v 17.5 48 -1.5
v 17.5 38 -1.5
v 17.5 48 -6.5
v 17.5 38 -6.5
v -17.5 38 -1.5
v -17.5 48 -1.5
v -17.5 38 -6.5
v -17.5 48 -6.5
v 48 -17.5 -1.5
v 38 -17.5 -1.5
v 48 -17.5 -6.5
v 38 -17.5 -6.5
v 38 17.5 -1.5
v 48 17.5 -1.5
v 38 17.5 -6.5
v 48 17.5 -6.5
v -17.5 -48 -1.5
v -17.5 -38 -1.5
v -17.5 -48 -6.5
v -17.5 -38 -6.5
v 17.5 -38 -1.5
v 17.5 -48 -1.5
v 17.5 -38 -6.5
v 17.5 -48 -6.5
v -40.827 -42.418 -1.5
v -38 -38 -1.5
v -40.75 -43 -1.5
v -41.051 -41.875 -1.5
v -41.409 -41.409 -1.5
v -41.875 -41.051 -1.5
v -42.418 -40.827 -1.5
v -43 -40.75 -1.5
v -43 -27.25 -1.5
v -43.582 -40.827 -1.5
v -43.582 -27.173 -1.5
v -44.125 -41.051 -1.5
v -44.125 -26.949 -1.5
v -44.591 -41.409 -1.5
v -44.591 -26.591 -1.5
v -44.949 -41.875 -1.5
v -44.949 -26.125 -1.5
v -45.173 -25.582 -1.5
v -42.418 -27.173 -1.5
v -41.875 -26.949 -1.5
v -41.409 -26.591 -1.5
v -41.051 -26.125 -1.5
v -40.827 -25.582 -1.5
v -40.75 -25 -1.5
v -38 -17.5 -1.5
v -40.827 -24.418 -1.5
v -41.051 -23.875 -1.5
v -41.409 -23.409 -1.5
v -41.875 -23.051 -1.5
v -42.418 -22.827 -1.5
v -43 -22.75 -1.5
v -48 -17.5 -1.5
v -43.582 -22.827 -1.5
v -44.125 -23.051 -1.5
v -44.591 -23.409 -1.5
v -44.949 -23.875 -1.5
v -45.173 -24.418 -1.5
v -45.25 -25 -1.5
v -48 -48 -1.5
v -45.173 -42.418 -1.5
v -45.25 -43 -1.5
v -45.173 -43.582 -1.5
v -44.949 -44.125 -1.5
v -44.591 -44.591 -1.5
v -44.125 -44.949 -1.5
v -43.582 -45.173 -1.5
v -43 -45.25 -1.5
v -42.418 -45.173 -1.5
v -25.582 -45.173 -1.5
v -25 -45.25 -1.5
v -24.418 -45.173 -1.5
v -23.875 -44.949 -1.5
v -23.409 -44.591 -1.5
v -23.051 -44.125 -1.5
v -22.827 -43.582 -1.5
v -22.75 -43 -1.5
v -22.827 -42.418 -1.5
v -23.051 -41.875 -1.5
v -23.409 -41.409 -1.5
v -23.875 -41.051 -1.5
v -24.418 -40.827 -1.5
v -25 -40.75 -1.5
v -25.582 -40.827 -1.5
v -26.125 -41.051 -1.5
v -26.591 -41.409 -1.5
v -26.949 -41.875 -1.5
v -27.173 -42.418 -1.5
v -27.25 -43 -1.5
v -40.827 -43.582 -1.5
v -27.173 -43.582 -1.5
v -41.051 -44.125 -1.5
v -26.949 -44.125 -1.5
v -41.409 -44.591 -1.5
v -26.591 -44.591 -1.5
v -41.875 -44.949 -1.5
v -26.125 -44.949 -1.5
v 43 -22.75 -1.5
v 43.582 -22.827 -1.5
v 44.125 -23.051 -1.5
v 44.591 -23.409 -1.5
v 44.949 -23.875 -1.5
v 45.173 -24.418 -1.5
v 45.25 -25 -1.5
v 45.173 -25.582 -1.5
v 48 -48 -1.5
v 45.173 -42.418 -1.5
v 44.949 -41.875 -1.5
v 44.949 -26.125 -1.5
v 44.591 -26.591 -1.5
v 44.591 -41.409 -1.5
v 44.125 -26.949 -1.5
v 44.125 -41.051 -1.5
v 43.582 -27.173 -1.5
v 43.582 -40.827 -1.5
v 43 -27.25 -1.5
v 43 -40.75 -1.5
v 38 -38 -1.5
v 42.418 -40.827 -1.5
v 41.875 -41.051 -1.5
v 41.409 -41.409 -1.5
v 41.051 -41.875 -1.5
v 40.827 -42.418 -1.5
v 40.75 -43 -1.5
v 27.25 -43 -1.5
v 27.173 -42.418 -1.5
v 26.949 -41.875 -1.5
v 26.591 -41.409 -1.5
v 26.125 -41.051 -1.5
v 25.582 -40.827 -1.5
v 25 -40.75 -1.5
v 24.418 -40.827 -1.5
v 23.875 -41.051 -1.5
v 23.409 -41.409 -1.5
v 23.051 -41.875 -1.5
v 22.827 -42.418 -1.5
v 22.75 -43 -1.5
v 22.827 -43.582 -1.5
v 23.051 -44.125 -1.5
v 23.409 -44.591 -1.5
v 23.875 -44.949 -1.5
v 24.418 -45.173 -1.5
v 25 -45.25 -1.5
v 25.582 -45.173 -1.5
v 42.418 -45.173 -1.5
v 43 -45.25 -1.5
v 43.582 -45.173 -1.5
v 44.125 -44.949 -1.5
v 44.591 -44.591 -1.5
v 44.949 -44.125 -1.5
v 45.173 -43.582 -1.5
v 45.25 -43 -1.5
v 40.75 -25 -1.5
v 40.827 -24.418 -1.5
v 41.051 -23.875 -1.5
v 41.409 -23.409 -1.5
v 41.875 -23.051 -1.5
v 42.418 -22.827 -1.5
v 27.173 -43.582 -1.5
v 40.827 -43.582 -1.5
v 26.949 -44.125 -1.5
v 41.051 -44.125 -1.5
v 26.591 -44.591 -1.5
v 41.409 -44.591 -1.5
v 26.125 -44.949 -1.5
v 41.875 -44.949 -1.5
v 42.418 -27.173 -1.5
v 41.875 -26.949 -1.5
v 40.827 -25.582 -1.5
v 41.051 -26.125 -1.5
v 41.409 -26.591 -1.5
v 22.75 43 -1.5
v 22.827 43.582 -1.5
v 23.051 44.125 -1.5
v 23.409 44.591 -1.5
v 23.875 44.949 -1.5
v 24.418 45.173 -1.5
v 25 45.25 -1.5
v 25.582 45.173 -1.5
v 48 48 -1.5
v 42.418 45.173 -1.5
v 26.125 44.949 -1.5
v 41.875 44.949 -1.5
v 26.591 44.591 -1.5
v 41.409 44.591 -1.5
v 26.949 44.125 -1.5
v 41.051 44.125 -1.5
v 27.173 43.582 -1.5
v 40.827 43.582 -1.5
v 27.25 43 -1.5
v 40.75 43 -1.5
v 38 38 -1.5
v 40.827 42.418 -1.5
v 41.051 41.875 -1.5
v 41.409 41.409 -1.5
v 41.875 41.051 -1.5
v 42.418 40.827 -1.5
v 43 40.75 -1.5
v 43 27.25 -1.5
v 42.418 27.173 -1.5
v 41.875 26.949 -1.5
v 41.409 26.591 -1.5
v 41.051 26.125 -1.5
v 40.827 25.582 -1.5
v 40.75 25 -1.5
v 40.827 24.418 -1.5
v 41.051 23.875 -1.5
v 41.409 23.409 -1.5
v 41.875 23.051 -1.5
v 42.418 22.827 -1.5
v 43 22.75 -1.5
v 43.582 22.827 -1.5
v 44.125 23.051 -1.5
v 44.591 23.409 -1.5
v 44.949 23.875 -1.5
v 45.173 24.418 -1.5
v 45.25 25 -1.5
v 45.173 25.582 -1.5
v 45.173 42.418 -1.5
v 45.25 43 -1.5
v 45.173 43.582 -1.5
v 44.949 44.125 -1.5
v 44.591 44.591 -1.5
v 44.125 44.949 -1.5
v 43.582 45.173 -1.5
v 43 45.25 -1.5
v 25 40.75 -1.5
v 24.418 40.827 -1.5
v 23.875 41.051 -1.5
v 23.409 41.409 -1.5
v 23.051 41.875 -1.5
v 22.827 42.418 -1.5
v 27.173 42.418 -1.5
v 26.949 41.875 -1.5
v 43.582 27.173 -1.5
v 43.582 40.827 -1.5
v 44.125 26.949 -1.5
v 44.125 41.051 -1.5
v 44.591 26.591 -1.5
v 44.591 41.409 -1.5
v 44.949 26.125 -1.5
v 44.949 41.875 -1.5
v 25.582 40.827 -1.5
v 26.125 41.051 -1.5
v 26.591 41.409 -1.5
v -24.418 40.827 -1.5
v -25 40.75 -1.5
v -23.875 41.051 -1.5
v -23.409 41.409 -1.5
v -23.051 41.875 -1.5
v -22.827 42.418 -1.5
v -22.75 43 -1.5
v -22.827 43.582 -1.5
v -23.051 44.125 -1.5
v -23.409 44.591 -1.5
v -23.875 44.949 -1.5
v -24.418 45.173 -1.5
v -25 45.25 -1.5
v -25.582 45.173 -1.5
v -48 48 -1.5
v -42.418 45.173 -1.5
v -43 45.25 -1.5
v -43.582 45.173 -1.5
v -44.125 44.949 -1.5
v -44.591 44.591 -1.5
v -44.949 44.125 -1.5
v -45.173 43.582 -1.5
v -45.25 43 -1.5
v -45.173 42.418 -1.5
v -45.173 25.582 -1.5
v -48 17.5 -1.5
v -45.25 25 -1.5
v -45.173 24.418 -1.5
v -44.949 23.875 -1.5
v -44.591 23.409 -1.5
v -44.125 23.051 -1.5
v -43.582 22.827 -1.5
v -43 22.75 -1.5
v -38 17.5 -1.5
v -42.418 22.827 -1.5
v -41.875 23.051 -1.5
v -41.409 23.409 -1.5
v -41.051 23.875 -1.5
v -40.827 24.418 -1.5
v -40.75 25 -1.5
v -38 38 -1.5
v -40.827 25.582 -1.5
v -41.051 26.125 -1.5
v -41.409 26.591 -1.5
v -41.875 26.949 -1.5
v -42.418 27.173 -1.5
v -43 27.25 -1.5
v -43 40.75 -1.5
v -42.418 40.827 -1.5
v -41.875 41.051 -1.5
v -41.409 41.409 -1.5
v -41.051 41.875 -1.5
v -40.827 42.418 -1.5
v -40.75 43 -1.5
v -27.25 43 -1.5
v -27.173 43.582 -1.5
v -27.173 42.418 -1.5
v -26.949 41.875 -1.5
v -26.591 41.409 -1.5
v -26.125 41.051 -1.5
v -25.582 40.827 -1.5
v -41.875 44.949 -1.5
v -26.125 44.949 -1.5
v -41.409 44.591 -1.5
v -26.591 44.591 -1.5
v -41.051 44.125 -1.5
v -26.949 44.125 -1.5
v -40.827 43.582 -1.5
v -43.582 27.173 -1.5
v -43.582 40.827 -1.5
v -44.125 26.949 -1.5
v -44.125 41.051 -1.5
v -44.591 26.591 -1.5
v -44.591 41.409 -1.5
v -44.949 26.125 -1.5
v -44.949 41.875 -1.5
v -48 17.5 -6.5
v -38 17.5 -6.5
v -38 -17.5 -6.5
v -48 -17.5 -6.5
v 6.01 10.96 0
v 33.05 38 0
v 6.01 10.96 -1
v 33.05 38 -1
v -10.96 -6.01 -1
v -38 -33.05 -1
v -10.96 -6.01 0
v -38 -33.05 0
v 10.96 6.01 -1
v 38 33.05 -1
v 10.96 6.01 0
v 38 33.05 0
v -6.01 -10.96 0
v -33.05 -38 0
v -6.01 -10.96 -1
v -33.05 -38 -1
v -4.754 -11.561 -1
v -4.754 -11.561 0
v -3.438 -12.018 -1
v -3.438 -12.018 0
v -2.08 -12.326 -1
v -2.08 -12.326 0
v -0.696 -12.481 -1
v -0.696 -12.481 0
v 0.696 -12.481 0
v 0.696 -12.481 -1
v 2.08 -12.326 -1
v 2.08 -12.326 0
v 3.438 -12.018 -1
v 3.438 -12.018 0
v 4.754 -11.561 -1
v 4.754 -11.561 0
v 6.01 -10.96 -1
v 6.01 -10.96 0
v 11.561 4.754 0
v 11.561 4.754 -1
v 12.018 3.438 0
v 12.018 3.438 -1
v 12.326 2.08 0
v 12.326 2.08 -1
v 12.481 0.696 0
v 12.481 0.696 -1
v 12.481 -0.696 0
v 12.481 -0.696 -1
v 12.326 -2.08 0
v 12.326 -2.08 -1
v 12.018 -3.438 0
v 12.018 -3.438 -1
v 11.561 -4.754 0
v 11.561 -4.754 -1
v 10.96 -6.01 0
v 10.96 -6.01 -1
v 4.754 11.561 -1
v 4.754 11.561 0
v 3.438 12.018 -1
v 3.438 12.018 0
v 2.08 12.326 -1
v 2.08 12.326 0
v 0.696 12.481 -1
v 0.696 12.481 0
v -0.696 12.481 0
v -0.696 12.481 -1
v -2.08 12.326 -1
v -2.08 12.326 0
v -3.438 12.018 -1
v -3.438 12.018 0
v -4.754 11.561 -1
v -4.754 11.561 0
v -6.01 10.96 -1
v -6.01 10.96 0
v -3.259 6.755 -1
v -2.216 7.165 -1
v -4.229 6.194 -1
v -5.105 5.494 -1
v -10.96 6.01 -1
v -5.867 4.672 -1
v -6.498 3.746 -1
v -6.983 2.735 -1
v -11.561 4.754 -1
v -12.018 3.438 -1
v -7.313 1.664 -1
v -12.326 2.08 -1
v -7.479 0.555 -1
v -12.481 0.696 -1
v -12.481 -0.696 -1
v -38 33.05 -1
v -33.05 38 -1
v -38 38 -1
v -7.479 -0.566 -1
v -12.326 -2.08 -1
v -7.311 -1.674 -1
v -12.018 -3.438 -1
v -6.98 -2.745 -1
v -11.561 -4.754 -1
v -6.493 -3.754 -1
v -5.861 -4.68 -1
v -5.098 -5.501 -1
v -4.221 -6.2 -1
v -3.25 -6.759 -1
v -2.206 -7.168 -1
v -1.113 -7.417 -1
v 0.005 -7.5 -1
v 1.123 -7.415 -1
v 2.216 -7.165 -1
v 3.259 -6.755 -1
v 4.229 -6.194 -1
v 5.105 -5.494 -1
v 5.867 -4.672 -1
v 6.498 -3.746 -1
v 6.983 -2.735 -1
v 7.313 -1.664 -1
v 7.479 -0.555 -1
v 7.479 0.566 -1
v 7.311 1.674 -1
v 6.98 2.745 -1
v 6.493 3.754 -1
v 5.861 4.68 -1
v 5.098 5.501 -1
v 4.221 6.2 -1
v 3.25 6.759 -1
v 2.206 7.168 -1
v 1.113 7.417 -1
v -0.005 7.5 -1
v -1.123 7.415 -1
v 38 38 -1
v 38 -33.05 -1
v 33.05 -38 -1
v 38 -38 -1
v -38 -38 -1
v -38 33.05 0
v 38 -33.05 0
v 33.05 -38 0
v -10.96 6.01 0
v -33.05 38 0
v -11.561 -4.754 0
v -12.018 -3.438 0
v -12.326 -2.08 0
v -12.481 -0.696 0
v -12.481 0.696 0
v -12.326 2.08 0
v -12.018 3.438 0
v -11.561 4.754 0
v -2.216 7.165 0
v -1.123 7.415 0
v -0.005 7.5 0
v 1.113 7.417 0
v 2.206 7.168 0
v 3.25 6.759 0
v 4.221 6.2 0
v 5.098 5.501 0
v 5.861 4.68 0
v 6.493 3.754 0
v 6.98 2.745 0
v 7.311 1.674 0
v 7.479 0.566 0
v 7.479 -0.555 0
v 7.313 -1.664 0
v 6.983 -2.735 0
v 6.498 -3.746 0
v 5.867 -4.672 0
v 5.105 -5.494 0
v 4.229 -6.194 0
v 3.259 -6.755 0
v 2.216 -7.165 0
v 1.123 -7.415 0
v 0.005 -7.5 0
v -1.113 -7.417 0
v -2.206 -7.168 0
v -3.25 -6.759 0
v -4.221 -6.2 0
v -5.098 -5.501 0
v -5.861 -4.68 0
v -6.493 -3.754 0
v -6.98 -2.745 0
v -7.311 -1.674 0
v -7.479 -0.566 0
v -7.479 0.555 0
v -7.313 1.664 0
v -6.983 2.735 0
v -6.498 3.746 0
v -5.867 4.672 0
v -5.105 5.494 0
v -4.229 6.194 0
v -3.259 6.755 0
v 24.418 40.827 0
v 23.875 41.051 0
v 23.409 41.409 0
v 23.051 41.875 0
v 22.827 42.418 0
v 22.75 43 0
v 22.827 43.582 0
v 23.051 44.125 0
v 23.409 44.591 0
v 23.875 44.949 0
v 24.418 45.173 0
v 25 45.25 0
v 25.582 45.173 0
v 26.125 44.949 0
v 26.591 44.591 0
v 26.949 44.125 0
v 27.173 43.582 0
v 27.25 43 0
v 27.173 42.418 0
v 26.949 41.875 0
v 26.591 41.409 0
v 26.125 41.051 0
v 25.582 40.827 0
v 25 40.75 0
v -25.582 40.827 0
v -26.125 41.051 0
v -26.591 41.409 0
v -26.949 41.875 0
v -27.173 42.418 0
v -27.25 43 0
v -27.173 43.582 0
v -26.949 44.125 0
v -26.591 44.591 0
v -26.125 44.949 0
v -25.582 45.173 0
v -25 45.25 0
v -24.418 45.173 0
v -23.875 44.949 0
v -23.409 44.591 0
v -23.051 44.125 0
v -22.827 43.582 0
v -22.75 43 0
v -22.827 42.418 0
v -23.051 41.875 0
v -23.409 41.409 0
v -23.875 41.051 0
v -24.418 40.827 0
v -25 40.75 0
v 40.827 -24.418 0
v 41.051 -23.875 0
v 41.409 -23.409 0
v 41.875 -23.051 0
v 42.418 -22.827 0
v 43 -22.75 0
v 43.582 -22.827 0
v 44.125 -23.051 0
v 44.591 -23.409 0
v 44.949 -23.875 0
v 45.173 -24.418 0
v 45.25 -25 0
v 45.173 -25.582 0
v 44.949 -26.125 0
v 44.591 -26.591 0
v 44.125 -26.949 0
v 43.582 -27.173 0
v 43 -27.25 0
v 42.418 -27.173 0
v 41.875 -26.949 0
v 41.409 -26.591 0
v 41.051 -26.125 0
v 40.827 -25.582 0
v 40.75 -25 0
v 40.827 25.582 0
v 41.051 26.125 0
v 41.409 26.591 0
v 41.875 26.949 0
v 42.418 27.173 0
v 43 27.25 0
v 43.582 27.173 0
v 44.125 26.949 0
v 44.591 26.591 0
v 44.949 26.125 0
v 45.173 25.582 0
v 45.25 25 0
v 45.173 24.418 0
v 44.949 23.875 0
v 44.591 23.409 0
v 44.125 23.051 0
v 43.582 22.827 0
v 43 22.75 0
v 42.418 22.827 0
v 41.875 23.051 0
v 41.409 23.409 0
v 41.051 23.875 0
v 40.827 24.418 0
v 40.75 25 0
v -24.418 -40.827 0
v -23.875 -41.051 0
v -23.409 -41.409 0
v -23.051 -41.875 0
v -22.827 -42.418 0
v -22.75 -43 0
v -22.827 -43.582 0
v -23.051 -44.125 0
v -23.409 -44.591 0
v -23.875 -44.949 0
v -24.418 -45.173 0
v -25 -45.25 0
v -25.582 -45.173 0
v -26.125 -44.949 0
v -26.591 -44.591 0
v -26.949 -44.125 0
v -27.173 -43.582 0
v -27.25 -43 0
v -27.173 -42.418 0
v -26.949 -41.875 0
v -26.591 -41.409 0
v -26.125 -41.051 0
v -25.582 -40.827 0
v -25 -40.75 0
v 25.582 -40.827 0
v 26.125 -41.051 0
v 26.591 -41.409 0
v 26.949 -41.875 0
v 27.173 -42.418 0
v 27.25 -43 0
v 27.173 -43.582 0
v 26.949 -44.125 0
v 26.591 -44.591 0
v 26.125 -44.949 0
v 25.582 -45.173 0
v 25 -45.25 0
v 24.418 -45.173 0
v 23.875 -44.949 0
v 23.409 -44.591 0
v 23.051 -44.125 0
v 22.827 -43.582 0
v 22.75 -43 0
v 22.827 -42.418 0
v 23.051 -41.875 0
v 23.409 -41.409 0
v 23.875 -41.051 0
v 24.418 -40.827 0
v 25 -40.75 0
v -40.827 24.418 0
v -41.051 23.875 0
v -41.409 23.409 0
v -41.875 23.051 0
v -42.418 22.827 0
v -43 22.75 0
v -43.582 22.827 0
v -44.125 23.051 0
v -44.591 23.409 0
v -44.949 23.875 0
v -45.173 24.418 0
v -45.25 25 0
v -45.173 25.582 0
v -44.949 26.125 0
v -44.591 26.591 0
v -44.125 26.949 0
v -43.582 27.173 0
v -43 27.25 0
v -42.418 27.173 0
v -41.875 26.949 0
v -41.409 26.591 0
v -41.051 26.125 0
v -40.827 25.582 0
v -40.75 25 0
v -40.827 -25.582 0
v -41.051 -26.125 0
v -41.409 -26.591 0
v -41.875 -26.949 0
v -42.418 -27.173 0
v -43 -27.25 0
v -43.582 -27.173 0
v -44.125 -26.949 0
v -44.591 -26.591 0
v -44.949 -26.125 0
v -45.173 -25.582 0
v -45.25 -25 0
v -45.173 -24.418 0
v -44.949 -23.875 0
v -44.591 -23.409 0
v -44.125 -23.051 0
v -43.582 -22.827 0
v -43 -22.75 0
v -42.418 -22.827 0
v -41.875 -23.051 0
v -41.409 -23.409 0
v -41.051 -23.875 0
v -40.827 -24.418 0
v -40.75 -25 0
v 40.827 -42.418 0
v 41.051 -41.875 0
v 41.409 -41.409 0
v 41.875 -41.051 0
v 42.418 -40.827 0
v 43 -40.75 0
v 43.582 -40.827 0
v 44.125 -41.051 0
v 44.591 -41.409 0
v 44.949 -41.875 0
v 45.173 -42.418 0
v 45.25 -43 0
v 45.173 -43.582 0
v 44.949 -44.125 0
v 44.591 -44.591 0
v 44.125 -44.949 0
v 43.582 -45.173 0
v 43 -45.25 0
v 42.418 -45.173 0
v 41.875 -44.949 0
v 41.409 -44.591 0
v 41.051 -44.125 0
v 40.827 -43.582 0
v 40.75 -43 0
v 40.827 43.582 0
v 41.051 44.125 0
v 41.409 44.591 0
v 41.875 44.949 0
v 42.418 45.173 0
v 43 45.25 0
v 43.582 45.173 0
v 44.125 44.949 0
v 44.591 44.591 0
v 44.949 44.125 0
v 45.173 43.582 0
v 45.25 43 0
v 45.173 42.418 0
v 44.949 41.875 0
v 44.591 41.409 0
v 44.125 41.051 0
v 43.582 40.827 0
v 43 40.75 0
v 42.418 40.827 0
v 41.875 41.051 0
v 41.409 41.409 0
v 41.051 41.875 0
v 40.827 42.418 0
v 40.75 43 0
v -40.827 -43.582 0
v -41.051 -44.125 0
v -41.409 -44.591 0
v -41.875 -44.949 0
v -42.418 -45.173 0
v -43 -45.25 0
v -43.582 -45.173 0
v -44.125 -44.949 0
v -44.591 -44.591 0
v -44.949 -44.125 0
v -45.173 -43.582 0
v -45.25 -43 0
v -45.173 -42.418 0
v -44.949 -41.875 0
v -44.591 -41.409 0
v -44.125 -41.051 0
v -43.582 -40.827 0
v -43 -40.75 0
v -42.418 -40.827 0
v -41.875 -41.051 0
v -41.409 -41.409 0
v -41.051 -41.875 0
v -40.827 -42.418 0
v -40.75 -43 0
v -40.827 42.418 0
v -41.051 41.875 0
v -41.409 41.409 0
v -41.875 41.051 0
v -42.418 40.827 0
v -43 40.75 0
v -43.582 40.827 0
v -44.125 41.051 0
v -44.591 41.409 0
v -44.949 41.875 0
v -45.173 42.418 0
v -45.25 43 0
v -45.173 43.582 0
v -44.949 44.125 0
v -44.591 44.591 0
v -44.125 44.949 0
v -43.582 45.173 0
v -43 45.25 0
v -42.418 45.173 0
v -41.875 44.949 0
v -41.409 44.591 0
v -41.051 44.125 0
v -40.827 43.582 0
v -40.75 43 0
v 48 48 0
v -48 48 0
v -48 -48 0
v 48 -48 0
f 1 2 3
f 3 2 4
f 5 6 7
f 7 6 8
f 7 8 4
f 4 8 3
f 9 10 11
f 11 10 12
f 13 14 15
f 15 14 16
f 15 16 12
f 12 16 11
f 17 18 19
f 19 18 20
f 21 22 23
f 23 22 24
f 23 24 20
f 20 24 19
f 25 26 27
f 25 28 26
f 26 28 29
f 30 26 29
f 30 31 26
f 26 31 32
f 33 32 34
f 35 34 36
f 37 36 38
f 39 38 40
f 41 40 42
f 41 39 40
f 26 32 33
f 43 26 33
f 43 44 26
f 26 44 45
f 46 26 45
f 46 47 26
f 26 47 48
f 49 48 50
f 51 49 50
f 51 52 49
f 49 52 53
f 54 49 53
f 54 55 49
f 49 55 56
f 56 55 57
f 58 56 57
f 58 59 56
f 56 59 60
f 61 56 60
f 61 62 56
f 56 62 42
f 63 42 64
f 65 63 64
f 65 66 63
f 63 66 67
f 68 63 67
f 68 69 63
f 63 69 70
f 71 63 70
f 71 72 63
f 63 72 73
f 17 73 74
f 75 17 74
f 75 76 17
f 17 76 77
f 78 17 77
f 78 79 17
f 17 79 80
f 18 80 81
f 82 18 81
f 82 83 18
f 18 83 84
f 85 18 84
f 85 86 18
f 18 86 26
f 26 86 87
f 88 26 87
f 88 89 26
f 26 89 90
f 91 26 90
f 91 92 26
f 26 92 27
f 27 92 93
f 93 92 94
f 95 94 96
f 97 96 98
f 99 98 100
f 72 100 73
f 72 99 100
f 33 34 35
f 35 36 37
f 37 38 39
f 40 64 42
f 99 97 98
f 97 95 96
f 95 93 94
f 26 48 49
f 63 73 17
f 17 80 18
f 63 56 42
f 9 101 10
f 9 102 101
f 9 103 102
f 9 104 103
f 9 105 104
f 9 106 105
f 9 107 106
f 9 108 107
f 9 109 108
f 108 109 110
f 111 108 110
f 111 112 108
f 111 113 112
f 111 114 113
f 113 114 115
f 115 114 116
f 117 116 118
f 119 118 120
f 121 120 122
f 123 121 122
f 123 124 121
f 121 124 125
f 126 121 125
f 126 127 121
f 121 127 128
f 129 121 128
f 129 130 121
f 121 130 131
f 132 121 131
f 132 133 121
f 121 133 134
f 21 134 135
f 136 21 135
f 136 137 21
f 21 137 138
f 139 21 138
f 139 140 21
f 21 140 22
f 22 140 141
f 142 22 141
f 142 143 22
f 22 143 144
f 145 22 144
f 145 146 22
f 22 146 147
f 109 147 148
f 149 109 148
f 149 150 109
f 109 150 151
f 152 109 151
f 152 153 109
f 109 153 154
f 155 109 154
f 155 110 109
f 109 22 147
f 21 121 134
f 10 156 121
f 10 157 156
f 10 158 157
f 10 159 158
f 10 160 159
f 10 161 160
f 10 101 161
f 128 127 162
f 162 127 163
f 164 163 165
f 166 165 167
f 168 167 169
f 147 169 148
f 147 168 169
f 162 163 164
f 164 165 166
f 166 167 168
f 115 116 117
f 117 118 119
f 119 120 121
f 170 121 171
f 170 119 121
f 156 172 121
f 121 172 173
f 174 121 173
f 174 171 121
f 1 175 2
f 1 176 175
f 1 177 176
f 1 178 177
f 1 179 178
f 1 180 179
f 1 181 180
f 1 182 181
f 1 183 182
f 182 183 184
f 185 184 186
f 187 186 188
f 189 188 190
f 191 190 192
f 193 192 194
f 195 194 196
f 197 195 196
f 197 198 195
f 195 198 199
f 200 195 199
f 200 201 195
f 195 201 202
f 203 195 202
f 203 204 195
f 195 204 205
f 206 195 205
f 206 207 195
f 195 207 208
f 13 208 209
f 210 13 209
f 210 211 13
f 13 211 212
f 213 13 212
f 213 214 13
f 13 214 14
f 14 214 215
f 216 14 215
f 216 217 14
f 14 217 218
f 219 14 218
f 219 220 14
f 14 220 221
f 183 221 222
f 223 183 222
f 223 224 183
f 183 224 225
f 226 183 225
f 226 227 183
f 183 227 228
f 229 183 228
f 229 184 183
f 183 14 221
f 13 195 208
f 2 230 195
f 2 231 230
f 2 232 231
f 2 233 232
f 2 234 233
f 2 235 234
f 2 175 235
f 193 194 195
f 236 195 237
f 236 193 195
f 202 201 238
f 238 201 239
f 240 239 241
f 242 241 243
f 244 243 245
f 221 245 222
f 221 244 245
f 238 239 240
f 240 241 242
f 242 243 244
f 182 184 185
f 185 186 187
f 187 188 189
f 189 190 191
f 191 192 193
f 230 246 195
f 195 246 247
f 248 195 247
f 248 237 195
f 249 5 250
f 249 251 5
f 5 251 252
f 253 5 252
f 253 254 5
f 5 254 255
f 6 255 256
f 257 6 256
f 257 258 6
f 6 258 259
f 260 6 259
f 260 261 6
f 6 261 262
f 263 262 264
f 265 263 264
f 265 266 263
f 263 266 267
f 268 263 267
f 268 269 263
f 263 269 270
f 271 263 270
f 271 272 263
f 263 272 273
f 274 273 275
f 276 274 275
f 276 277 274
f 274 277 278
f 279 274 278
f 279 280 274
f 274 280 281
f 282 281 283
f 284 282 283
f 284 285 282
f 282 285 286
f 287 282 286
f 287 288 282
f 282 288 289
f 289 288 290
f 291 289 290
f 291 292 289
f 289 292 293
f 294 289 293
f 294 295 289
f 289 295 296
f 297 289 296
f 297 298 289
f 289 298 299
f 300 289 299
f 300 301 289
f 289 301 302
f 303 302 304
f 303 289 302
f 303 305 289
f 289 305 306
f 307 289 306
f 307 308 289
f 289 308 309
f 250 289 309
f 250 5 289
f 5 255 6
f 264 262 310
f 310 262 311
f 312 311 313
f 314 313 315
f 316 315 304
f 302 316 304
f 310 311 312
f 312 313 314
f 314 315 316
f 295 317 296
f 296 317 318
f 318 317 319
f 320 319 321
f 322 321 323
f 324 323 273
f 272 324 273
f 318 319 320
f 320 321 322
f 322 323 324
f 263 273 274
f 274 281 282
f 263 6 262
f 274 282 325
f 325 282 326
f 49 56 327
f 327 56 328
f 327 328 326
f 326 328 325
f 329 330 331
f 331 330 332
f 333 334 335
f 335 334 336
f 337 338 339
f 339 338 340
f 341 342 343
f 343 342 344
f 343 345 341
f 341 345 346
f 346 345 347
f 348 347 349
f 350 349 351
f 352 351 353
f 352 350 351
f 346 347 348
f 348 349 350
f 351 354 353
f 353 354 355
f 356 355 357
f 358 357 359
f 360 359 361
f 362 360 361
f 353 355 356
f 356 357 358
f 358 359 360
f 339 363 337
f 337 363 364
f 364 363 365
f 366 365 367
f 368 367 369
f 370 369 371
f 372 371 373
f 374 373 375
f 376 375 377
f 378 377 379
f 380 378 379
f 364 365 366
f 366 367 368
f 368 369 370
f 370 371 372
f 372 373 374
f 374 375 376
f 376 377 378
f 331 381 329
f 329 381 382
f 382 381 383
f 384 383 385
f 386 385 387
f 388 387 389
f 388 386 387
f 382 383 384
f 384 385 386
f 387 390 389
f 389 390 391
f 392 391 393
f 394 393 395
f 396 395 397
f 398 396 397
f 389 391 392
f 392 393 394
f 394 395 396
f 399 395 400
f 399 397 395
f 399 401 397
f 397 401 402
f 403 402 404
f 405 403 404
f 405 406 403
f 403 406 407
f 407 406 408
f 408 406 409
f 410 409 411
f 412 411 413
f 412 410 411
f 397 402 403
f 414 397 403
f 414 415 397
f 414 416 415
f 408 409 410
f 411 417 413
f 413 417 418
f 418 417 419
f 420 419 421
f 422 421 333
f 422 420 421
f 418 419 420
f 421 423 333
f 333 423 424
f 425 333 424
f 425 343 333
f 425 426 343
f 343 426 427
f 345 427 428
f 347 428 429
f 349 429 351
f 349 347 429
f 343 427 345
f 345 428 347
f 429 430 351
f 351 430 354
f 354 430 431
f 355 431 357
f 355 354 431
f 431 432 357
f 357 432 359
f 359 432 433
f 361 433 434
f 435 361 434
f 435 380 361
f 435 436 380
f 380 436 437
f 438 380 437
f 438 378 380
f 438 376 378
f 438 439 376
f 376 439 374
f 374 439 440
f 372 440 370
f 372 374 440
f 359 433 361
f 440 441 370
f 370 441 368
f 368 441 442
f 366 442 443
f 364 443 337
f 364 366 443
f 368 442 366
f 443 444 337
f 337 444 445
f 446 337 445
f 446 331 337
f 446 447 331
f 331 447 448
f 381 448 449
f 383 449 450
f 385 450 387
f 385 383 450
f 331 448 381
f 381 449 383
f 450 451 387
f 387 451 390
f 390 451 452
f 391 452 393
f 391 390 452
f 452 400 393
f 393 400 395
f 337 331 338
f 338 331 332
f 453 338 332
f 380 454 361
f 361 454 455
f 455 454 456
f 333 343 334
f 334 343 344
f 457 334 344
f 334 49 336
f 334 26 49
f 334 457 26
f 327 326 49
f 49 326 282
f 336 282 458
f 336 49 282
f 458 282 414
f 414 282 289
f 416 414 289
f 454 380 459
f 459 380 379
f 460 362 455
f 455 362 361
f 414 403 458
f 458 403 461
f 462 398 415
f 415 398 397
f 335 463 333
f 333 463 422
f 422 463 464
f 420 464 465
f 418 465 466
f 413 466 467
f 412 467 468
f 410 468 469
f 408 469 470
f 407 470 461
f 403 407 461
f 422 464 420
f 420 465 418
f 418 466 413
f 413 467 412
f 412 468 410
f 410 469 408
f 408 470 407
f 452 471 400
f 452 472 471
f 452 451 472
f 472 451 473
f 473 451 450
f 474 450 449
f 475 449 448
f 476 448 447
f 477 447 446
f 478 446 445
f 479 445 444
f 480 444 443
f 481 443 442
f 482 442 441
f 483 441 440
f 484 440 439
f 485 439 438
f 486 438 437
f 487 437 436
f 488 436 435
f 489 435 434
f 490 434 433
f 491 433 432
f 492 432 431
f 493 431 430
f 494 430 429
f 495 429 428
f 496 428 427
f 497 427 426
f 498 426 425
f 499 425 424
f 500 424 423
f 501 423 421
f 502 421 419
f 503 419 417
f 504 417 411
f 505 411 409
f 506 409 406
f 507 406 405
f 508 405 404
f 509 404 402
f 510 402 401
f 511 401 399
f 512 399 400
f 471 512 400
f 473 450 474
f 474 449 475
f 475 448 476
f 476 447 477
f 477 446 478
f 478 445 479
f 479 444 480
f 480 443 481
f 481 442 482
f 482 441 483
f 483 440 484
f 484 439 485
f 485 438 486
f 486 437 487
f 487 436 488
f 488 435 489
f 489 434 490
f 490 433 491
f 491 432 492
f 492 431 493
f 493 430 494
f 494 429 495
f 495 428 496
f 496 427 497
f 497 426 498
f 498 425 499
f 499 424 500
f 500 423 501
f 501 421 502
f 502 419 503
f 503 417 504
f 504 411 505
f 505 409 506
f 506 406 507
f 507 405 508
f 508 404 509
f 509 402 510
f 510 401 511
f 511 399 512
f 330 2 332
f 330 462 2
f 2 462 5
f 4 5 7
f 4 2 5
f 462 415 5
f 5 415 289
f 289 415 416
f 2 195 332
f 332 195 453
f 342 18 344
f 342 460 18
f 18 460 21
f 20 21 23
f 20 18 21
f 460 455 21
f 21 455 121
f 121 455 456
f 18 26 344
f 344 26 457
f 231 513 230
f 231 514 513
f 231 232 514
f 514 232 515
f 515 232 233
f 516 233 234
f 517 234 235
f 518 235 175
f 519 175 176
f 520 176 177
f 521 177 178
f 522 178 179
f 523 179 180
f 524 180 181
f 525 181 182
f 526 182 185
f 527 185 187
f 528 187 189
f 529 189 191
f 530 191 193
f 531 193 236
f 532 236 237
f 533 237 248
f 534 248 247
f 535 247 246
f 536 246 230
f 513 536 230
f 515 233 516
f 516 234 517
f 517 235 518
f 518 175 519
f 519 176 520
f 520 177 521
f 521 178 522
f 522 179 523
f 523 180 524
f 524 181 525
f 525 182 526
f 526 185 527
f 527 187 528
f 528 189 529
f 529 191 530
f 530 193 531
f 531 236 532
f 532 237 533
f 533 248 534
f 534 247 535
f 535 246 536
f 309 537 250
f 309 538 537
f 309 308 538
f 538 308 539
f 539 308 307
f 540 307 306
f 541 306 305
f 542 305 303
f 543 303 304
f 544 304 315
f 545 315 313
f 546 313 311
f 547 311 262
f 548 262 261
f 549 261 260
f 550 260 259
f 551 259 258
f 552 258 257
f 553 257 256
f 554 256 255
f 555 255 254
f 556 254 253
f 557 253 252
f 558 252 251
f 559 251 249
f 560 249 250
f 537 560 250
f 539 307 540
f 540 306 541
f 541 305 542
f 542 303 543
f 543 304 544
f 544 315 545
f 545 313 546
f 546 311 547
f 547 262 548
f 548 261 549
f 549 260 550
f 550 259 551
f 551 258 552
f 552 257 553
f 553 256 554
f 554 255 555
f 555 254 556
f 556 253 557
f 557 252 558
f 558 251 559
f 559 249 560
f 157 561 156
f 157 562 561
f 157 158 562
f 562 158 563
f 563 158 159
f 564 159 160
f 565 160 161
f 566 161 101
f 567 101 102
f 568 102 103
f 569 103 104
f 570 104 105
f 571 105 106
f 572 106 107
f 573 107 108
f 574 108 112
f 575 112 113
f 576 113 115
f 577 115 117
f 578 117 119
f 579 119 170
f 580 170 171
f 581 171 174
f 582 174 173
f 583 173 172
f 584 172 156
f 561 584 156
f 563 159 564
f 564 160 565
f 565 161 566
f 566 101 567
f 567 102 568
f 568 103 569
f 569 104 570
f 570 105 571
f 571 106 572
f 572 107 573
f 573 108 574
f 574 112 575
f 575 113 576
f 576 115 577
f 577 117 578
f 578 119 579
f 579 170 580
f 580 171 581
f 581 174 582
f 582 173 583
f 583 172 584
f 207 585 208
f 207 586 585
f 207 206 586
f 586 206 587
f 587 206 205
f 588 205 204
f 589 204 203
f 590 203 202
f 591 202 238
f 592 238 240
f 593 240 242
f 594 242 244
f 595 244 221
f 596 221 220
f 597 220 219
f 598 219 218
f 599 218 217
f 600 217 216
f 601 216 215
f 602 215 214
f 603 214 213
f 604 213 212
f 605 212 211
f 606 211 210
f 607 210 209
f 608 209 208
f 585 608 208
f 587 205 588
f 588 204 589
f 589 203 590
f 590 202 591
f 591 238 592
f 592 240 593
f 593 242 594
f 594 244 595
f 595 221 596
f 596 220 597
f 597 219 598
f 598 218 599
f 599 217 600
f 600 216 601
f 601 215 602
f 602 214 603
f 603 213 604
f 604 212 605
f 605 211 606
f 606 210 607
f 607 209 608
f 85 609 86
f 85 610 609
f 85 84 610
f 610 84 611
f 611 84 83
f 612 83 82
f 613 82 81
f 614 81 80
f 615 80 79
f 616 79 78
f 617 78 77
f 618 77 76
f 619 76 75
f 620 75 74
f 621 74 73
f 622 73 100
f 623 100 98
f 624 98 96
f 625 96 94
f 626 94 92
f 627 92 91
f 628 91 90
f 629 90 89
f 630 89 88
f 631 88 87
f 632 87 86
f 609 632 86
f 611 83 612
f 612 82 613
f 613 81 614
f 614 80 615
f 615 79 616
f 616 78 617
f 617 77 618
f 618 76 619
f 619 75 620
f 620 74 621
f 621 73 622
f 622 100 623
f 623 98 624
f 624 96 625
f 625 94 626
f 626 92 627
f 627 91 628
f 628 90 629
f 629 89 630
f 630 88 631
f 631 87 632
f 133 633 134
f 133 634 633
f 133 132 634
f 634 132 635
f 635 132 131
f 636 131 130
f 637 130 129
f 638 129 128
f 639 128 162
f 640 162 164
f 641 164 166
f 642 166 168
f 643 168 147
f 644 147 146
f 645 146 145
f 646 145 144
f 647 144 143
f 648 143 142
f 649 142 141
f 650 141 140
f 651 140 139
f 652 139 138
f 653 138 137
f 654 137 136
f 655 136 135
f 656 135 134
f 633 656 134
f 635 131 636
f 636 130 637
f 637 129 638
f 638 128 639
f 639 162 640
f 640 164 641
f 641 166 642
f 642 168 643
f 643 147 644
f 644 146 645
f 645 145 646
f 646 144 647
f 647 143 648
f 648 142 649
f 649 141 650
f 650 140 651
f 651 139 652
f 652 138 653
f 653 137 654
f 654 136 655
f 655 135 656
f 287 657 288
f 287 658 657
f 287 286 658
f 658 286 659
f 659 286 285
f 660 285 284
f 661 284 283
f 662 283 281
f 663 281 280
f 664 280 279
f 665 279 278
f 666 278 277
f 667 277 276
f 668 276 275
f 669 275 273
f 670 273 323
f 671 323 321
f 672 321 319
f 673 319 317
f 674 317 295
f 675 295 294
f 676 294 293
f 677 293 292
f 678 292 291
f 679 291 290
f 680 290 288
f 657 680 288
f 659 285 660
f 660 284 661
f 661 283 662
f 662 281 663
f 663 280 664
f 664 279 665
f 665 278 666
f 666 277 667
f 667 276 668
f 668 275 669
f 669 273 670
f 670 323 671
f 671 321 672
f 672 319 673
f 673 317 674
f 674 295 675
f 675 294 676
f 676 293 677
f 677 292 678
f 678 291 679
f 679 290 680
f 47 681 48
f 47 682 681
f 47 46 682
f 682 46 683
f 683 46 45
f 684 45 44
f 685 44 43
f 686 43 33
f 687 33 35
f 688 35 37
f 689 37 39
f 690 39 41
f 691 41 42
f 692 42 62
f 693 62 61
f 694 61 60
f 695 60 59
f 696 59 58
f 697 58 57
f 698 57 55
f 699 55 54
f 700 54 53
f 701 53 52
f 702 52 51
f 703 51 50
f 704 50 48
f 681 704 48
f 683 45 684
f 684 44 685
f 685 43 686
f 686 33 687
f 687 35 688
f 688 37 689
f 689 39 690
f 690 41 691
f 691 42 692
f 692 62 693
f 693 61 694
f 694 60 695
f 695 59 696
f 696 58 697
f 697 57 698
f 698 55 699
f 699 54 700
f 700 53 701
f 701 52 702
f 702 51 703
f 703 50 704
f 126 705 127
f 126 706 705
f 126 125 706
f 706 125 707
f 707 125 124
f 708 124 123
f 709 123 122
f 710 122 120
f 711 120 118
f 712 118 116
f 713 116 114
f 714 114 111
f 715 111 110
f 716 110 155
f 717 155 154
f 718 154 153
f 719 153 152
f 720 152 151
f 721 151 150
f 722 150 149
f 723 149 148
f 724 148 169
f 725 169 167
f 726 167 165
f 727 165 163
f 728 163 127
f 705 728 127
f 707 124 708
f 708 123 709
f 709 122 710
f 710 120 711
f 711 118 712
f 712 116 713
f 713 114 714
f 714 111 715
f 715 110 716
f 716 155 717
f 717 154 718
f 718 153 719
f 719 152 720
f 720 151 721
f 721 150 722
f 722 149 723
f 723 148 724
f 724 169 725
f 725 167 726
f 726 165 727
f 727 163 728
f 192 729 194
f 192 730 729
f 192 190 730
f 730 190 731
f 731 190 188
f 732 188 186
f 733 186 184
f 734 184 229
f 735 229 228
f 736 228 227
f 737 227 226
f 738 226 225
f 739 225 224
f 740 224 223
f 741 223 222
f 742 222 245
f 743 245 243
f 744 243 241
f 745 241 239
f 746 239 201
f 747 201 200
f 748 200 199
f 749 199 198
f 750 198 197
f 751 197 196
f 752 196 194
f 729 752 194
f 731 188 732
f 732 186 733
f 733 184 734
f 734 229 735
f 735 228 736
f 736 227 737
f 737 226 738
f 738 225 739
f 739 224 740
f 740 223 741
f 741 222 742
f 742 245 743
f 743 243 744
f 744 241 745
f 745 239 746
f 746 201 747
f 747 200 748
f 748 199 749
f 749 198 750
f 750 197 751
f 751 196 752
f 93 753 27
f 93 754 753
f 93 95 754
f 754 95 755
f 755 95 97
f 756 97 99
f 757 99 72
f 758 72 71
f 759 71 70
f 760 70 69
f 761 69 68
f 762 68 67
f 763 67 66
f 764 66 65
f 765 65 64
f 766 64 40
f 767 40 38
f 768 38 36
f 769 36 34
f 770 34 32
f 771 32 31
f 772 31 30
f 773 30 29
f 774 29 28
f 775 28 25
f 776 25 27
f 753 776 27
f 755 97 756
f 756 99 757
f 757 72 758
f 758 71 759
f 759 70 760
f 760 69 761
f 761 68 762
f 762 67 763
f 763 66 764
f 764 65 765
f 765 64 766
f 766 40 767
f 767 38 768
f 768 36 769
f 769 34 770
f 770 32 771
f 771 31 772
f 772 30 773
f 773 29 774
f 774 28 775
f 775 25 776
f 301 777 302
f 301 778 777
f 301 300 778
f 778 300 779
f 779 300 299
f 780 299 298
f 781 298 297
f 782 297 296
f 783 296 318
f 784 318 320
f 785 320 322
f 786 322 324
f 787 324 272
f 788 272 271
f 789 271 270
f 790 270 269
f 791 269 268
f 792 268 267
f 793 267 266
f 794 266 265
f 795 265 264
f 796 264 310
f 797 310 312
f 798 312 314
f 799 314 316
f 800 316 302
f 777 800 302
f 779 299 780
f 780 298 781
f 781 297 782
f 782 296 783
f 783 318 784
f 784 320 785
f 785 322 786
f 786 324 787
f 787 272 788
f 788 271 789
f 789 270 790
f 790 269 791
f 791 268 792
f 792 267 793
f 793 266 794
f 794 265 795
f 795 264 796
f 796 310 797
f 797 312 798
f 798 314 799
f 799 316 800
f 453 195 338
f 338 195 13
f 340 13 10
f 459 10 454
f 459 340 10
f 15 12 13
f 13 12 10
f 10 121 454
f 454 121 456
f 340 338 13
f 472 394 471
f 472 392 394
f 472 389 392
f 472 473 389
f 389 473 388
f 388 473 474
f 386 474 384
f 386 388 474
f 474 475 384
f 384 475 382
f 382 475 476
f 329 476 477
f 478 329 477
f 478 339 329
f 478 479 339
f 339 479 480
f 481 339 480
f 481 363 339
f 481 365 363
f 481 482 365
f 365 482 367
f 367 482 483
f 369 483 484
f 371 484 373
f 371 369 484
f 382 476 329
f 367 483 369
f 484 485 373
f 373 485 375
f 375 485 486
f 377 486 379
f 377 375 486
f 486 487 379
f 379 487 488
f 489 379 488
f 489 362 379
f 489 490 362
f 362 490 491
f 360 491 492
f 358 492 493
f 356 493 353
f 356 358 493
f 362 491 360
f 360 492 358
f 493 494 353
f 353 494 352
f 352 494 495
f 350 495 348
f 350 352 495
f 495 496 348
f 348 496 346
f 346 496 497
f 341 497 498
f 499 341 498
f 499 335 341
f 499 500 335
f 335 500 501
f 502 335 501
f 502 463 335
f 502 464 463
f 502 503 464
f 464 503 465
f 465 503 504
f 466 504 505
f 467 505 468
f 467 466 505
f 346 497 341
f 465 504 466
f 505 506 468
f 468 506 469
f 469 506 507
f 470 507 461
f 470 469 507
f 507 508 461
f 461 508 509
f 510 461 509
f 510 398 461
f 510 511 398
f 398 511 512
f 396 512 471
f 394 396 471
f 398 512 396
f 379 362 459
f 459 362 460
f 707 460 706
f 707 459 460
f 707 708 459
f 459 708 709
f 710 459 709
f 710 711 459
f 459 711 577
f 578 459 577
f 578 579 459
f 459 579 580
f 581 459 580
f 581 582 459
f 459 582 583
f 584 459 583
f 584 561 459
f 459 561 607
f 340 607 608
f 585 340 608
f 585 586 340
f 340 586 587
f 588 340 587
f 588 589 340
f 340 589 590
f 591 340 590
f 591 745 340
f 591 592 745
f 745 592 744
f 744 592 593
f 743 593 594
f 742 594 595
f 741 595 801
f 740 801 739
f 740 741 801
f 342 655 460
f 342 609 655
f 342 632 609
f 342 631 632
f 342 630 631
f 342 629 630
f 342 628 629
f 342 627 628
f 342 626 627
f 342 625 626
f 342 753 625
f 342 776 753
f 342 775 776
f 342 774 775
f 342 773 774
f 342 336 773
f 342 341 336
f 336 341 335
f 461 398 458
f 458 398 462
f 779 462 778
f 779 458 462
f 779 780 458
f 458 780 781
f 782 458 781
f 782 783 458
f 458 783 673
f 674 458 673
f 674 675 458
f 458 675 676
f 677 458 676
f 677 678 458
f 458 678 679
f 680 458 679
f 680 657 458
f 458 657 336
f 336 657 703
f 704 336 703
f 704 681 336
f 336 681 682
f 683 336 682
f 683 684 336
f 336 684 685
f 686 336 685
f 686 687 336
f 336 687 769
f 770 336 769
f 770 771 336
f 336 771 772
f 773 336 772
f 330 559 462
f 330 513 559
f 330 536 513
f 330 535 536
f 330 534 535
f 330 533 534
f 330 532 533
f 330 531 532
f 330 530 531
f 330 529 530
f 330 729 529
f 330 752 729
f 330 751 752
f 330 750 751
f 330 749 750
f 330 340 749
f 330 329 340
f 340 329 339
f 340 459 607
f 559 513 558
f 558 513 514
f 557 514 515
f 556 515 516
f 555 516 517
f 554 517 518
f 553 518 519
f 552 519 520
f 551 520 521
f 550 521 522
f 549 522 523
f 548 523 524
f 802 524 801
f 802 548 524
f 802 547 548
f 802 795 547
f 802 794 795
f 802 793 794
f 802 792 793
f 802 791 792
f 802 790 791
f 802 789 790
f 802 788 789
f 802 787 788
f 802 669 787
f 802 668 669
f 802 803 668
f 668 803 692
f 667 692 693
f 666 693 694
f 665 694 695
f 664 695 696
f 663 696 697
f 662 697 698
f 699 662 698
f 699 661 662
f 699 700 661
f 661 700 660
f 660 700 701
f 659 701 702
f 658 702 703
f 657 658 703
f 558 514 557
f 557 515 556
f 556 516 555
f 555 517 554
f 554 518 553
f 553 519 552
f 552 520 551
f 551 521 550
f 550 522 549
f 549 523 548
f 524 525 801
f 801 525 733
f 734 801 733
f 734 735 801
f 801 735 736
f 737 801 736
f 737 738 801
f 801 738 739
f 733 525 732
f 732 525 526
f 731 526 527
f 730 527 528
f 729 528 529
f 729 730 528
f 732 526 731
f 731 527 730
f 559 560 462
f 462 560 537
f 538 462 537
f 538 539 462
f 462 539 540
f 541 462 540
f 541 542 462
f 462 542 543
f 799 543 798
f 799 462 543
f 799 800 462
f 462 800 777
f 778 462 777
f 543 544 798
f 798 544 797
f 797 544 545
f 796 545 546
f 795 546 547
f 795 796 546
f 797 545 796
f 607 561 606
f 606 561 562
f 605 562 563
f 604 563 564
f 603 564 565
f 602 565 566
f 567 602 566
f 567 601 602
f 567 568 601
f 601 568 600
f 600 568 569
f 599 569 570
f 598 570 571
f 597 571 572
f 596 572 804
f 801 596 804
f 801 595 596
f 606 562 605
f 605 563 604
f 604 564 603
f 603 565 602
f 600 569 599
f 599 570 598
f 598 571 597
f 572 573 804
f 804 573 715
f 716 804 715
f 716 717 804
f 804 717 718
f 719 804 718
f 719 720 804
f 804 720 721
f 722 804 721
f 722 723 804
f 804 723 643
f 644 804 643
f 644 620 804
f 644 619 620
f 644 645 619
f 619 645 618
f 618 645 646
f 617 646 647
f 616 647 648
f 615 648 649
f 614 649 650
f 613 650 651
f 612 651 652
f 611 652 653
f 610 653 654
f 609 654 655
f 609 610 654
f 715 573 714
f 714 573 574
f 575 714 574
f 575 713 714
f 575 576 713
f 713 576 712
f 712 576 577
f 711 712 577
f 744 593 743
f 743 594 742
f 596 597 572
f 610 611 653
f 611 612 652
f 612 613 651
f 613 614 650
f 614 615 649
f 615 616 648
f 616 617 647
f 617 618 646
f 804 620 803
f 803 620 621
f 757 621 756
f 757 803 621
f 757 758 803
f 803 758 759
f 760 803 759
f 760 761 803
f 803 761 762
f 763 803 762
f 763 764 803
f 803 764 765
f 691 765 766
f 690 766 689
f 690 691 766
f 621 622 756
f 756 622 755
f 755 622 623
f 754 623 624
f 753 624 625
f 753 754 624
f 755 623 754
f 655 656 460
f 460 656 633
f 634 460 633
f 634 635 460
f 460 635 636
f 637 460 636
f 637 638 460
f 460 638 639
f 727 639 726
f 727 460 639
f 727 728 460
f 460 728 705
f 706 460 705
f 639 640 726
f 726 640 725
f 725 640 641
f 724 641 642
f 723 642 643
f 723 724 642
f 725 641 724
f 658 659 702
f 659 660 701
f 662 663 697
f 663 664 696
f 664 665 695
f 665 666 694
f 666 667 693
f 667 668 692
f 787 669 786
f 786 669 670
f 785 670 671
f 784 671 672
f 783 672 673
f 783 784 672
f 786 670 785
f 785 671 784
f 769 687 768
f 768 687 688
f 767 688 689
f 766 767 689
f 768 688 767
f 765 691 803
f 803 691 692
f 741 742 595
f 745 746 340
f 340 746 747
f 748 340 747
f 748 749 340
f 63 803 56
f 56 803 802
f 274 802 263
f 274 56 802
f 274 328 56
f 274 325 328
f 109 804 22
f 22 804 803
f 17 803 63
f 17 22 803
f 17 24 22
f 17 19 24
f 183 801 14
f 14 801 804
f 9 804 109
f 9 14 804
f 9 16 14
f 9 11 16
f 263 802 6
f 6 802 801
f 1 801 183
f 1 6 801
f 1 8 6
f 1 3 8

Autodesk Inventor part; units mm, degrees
ref_plane "YZ Plane" through (0, 0, 0) normal (1, 0, 0) x (0, 1, 0)
ref_plane "XZ Plane" through (0, 0, 0) normal (0, 1, 0) x (-1, 0, 0)
ref_plane "XY Plane" through (0, 0, 0) normal (0, 0, 1) x (1, 0, 0)
sketch "Sketch1" plane through (0, 0, 0) normal (0, 0, 1) x (1, 0, 0)
  line L0 (-48, 48) -> (48, 48)
  line L1 (48, 48) -> (48, -48)
  line L2 (48, -48) -> (-48, -48)
  line L3 (-48, -48) -> (-48, 48)
  line L4 (38, 38) -> (-38, 38)
  line L5 (-38, 38) -> (-38, -38)
  line L6 (-38, -38) -> (38, -38)
  line L7 (38, -38) -> (38, 38)
  line L8 (0, 152.7233) -> (0, -72.1628) construction
  line L9 (-77.8847, 0) -> (88.8171, 0) construction
  line L10 (-48, 43) -> (48, 43) construction
  line L11 (-43, 48) -> (-43, -48) construction
  line L12 (-48, -43) -> (48, -43) construction
  circle A0 centre (-43, 25) radius 2.25
  circle A1 centre (-43, -25) radius 2.25
  circle A2 centre (-43, -43) radius 2.25
  circle A3 centre (-43, 43) radius 2.25
  line L13 (-48, 30) -> (48, 30) construction
  line L14 (-48, -30) -> (48, -30) construction
  line L15 (-50, 31) -> (-36, 31)
  line L16 (-36, 31) -> (-36, -31)
  line L17 (-36, -31) -> (-50, -31)
  line L18 (-50, -31) -> (-50, 31)
  point P0 (0, 0)
  point P1 (0, 48)
  point P2 (48, 0)
  dimension "d0" = 96
  dimension "d1" = 96
  dimension "d2" = 10
  dimension "d5" = 5
  dimension "d11" = 5
  dimension "d14" = 5
  dimension "d31" = 4.5
  dimension "d32" = 4.5
  dimension "d61" = 4.5
  dimension "d62" = 4.5
  dimension "d65" = 30
  dimension "d66" = 30
  dimension "d67" = 5
  dimension "d68" = 5
  dimension "d74" = 1
  dimension "d75" = 1
  dimension "d76" = 2
  dimension "d77" = 2
extrude "Extrusion1" add sketch "Sketch1" against normal blind 1.5 contours L0 L1 L2 L3 L17 L5 L6 L7 L4 L15 | L15 L5 L17 L3 | A0 | A1 | A2 | A3
extrude "Extrusion2" cut sketch "Sketch1" against normal blind 10 contours A2 | A3
mirror "Mirror5" about plane through (0, 0, 0) normal (1, 0, 0) of "Extrusion2"
extrude "Extrusion5" cut sketch "Sketch1" against normal blind 10 contours A0 | A1
pattern_circular "Circular Pattern1" count 4 over 360 about axis through (0, 0, -10) along (0, 0, 1) of "Extrusion5"
sketch "Sketch3" plane through (0, 0, 0) normal (0, 0, 1) x (1, 0, 0)
  circle A0 centre (25, 43) radius 2.25 projected
  circle A1 centre (-25, 43) radius 2.25 projected
  circle A2 centre (43, -25) radius 2.25 projected
  circle A3 centre (43, 25) radius 2.25 projected
  circle A4 centre (-25, -43) radius 2.25 projected
  circle A5 centre (25, -43) radius 2.25 projected
  circle A6 centre (-43, 25) radius 2.25 projected
  circle A7 centre (-43, -25) radius 2.25 projected
  circle A8 centre (43, -43) radius 2.25 projected
  circle A9 centre (43, 43) radius 2.25 projected
  circle A10 centre (-43, -43) radius 2.25 projected
  circle A11 centre (-43, 43) radius 2.25 projected
  line L0 (-38, -38) -> (-38, 38) projected
  line L1 (-38, 38) -> (38, 38) projected
  line L2 (38, 38) -> (38, -38) projected
  line L3 (38, -38) -> (-38, -38) projected
  line L4 (-48, 48) -> (48, 48) projected
  line L5 (-48, -48) -> (-48, 48) projected
  line L6 (48, -48) -> (-48, -48) projected
  line L7 (48, 48) -> (48, -48) projected
  circle A12 centre (0, 0) radius 7.5
  circle A13 centre (0, 0) radius 12.5
  line L8 (-35.5251, 40.4749) -> (40.4749, -35.5251)
  line L9 (40.4749, -35.5251) -> (35.5251, -40.4749)
  line L10 (35.5251, -40.4749) -> (-40.4749, 35.5251)
  line L11 (-40.4749, 35.5251) -> (-35.5251, 40.4749)
  line L12 (-38, 38) -> (38, -38) construction
  line L13 (2.4749, 2.4749) -> (-2.4749, -2.4749) construction
  dimension "d80" = 15
  dimension "d81" = 5
  dimension "d82" = 7
extrude "Extrusion7" add sketch "Sketch3" against normal blind 1 contours L10 A12 A13 | A13 L8 A12 L10 | L10 A12 L8 A13 | A13 L8 A12
extrude "Extrusion8" add sketch "Sketch3" against normal blind 1 contours L10 L11 L0 | L0 L1 L8 A13 L10 | L10 A13 L8 L2 L3 | L3 L9 L10 | L11 L8 L1 | A13 L8 A12 L10 | L2 L8 L9 | L10 A12 L8 A13 | A12 L8 L10
mirror "Mirror6" about plane through (0, 0, 0) normal (1, 0, 0) of "Extrusion8"
extrude "Extrusion9" cut sketch "Sketch3" against normal blind 1 contours L10 A12 | A12 L8 L10 | A12 L8
sketch "Sketch4" plane through (0, 0, -1.5) normal (0, 0, -1) x (-1, 0, 0)
  line L0 (48, -48) -> (48, 48) projected
  line L1 (38, -33.0503) -> (38, 33.0503) projected
  line L2 (48, -17.5) -> (38, -17.5)
  line L3 (38, -17.5) -> (38, 17.5)
  line L4 (38, 17.5) -> (48, 17.5)
  line L5 (48, 17.5) -> (48, -17.5)
  point P0 (0, 0)
  point P1 (38, 0)
  point P2 (38, 0)
  dimension "d89" = 35
extrude "Extrusion10" add sketch "Sketch4" along normal blind 5
pattern_circular "Circular Pattern2" count 4 over 360 about axis through (0, 0, -10) along (0, 0, 1) of "Extrusion10"
equation "\"d31\" = screw"
equation "\"d32\" = screw"
equation "\"d61\" = screw"
equation "\"d62\" = screw"
equation "\"screw\" = 4.5"
properties part number "Base" material "PC/ABS Plastic"
